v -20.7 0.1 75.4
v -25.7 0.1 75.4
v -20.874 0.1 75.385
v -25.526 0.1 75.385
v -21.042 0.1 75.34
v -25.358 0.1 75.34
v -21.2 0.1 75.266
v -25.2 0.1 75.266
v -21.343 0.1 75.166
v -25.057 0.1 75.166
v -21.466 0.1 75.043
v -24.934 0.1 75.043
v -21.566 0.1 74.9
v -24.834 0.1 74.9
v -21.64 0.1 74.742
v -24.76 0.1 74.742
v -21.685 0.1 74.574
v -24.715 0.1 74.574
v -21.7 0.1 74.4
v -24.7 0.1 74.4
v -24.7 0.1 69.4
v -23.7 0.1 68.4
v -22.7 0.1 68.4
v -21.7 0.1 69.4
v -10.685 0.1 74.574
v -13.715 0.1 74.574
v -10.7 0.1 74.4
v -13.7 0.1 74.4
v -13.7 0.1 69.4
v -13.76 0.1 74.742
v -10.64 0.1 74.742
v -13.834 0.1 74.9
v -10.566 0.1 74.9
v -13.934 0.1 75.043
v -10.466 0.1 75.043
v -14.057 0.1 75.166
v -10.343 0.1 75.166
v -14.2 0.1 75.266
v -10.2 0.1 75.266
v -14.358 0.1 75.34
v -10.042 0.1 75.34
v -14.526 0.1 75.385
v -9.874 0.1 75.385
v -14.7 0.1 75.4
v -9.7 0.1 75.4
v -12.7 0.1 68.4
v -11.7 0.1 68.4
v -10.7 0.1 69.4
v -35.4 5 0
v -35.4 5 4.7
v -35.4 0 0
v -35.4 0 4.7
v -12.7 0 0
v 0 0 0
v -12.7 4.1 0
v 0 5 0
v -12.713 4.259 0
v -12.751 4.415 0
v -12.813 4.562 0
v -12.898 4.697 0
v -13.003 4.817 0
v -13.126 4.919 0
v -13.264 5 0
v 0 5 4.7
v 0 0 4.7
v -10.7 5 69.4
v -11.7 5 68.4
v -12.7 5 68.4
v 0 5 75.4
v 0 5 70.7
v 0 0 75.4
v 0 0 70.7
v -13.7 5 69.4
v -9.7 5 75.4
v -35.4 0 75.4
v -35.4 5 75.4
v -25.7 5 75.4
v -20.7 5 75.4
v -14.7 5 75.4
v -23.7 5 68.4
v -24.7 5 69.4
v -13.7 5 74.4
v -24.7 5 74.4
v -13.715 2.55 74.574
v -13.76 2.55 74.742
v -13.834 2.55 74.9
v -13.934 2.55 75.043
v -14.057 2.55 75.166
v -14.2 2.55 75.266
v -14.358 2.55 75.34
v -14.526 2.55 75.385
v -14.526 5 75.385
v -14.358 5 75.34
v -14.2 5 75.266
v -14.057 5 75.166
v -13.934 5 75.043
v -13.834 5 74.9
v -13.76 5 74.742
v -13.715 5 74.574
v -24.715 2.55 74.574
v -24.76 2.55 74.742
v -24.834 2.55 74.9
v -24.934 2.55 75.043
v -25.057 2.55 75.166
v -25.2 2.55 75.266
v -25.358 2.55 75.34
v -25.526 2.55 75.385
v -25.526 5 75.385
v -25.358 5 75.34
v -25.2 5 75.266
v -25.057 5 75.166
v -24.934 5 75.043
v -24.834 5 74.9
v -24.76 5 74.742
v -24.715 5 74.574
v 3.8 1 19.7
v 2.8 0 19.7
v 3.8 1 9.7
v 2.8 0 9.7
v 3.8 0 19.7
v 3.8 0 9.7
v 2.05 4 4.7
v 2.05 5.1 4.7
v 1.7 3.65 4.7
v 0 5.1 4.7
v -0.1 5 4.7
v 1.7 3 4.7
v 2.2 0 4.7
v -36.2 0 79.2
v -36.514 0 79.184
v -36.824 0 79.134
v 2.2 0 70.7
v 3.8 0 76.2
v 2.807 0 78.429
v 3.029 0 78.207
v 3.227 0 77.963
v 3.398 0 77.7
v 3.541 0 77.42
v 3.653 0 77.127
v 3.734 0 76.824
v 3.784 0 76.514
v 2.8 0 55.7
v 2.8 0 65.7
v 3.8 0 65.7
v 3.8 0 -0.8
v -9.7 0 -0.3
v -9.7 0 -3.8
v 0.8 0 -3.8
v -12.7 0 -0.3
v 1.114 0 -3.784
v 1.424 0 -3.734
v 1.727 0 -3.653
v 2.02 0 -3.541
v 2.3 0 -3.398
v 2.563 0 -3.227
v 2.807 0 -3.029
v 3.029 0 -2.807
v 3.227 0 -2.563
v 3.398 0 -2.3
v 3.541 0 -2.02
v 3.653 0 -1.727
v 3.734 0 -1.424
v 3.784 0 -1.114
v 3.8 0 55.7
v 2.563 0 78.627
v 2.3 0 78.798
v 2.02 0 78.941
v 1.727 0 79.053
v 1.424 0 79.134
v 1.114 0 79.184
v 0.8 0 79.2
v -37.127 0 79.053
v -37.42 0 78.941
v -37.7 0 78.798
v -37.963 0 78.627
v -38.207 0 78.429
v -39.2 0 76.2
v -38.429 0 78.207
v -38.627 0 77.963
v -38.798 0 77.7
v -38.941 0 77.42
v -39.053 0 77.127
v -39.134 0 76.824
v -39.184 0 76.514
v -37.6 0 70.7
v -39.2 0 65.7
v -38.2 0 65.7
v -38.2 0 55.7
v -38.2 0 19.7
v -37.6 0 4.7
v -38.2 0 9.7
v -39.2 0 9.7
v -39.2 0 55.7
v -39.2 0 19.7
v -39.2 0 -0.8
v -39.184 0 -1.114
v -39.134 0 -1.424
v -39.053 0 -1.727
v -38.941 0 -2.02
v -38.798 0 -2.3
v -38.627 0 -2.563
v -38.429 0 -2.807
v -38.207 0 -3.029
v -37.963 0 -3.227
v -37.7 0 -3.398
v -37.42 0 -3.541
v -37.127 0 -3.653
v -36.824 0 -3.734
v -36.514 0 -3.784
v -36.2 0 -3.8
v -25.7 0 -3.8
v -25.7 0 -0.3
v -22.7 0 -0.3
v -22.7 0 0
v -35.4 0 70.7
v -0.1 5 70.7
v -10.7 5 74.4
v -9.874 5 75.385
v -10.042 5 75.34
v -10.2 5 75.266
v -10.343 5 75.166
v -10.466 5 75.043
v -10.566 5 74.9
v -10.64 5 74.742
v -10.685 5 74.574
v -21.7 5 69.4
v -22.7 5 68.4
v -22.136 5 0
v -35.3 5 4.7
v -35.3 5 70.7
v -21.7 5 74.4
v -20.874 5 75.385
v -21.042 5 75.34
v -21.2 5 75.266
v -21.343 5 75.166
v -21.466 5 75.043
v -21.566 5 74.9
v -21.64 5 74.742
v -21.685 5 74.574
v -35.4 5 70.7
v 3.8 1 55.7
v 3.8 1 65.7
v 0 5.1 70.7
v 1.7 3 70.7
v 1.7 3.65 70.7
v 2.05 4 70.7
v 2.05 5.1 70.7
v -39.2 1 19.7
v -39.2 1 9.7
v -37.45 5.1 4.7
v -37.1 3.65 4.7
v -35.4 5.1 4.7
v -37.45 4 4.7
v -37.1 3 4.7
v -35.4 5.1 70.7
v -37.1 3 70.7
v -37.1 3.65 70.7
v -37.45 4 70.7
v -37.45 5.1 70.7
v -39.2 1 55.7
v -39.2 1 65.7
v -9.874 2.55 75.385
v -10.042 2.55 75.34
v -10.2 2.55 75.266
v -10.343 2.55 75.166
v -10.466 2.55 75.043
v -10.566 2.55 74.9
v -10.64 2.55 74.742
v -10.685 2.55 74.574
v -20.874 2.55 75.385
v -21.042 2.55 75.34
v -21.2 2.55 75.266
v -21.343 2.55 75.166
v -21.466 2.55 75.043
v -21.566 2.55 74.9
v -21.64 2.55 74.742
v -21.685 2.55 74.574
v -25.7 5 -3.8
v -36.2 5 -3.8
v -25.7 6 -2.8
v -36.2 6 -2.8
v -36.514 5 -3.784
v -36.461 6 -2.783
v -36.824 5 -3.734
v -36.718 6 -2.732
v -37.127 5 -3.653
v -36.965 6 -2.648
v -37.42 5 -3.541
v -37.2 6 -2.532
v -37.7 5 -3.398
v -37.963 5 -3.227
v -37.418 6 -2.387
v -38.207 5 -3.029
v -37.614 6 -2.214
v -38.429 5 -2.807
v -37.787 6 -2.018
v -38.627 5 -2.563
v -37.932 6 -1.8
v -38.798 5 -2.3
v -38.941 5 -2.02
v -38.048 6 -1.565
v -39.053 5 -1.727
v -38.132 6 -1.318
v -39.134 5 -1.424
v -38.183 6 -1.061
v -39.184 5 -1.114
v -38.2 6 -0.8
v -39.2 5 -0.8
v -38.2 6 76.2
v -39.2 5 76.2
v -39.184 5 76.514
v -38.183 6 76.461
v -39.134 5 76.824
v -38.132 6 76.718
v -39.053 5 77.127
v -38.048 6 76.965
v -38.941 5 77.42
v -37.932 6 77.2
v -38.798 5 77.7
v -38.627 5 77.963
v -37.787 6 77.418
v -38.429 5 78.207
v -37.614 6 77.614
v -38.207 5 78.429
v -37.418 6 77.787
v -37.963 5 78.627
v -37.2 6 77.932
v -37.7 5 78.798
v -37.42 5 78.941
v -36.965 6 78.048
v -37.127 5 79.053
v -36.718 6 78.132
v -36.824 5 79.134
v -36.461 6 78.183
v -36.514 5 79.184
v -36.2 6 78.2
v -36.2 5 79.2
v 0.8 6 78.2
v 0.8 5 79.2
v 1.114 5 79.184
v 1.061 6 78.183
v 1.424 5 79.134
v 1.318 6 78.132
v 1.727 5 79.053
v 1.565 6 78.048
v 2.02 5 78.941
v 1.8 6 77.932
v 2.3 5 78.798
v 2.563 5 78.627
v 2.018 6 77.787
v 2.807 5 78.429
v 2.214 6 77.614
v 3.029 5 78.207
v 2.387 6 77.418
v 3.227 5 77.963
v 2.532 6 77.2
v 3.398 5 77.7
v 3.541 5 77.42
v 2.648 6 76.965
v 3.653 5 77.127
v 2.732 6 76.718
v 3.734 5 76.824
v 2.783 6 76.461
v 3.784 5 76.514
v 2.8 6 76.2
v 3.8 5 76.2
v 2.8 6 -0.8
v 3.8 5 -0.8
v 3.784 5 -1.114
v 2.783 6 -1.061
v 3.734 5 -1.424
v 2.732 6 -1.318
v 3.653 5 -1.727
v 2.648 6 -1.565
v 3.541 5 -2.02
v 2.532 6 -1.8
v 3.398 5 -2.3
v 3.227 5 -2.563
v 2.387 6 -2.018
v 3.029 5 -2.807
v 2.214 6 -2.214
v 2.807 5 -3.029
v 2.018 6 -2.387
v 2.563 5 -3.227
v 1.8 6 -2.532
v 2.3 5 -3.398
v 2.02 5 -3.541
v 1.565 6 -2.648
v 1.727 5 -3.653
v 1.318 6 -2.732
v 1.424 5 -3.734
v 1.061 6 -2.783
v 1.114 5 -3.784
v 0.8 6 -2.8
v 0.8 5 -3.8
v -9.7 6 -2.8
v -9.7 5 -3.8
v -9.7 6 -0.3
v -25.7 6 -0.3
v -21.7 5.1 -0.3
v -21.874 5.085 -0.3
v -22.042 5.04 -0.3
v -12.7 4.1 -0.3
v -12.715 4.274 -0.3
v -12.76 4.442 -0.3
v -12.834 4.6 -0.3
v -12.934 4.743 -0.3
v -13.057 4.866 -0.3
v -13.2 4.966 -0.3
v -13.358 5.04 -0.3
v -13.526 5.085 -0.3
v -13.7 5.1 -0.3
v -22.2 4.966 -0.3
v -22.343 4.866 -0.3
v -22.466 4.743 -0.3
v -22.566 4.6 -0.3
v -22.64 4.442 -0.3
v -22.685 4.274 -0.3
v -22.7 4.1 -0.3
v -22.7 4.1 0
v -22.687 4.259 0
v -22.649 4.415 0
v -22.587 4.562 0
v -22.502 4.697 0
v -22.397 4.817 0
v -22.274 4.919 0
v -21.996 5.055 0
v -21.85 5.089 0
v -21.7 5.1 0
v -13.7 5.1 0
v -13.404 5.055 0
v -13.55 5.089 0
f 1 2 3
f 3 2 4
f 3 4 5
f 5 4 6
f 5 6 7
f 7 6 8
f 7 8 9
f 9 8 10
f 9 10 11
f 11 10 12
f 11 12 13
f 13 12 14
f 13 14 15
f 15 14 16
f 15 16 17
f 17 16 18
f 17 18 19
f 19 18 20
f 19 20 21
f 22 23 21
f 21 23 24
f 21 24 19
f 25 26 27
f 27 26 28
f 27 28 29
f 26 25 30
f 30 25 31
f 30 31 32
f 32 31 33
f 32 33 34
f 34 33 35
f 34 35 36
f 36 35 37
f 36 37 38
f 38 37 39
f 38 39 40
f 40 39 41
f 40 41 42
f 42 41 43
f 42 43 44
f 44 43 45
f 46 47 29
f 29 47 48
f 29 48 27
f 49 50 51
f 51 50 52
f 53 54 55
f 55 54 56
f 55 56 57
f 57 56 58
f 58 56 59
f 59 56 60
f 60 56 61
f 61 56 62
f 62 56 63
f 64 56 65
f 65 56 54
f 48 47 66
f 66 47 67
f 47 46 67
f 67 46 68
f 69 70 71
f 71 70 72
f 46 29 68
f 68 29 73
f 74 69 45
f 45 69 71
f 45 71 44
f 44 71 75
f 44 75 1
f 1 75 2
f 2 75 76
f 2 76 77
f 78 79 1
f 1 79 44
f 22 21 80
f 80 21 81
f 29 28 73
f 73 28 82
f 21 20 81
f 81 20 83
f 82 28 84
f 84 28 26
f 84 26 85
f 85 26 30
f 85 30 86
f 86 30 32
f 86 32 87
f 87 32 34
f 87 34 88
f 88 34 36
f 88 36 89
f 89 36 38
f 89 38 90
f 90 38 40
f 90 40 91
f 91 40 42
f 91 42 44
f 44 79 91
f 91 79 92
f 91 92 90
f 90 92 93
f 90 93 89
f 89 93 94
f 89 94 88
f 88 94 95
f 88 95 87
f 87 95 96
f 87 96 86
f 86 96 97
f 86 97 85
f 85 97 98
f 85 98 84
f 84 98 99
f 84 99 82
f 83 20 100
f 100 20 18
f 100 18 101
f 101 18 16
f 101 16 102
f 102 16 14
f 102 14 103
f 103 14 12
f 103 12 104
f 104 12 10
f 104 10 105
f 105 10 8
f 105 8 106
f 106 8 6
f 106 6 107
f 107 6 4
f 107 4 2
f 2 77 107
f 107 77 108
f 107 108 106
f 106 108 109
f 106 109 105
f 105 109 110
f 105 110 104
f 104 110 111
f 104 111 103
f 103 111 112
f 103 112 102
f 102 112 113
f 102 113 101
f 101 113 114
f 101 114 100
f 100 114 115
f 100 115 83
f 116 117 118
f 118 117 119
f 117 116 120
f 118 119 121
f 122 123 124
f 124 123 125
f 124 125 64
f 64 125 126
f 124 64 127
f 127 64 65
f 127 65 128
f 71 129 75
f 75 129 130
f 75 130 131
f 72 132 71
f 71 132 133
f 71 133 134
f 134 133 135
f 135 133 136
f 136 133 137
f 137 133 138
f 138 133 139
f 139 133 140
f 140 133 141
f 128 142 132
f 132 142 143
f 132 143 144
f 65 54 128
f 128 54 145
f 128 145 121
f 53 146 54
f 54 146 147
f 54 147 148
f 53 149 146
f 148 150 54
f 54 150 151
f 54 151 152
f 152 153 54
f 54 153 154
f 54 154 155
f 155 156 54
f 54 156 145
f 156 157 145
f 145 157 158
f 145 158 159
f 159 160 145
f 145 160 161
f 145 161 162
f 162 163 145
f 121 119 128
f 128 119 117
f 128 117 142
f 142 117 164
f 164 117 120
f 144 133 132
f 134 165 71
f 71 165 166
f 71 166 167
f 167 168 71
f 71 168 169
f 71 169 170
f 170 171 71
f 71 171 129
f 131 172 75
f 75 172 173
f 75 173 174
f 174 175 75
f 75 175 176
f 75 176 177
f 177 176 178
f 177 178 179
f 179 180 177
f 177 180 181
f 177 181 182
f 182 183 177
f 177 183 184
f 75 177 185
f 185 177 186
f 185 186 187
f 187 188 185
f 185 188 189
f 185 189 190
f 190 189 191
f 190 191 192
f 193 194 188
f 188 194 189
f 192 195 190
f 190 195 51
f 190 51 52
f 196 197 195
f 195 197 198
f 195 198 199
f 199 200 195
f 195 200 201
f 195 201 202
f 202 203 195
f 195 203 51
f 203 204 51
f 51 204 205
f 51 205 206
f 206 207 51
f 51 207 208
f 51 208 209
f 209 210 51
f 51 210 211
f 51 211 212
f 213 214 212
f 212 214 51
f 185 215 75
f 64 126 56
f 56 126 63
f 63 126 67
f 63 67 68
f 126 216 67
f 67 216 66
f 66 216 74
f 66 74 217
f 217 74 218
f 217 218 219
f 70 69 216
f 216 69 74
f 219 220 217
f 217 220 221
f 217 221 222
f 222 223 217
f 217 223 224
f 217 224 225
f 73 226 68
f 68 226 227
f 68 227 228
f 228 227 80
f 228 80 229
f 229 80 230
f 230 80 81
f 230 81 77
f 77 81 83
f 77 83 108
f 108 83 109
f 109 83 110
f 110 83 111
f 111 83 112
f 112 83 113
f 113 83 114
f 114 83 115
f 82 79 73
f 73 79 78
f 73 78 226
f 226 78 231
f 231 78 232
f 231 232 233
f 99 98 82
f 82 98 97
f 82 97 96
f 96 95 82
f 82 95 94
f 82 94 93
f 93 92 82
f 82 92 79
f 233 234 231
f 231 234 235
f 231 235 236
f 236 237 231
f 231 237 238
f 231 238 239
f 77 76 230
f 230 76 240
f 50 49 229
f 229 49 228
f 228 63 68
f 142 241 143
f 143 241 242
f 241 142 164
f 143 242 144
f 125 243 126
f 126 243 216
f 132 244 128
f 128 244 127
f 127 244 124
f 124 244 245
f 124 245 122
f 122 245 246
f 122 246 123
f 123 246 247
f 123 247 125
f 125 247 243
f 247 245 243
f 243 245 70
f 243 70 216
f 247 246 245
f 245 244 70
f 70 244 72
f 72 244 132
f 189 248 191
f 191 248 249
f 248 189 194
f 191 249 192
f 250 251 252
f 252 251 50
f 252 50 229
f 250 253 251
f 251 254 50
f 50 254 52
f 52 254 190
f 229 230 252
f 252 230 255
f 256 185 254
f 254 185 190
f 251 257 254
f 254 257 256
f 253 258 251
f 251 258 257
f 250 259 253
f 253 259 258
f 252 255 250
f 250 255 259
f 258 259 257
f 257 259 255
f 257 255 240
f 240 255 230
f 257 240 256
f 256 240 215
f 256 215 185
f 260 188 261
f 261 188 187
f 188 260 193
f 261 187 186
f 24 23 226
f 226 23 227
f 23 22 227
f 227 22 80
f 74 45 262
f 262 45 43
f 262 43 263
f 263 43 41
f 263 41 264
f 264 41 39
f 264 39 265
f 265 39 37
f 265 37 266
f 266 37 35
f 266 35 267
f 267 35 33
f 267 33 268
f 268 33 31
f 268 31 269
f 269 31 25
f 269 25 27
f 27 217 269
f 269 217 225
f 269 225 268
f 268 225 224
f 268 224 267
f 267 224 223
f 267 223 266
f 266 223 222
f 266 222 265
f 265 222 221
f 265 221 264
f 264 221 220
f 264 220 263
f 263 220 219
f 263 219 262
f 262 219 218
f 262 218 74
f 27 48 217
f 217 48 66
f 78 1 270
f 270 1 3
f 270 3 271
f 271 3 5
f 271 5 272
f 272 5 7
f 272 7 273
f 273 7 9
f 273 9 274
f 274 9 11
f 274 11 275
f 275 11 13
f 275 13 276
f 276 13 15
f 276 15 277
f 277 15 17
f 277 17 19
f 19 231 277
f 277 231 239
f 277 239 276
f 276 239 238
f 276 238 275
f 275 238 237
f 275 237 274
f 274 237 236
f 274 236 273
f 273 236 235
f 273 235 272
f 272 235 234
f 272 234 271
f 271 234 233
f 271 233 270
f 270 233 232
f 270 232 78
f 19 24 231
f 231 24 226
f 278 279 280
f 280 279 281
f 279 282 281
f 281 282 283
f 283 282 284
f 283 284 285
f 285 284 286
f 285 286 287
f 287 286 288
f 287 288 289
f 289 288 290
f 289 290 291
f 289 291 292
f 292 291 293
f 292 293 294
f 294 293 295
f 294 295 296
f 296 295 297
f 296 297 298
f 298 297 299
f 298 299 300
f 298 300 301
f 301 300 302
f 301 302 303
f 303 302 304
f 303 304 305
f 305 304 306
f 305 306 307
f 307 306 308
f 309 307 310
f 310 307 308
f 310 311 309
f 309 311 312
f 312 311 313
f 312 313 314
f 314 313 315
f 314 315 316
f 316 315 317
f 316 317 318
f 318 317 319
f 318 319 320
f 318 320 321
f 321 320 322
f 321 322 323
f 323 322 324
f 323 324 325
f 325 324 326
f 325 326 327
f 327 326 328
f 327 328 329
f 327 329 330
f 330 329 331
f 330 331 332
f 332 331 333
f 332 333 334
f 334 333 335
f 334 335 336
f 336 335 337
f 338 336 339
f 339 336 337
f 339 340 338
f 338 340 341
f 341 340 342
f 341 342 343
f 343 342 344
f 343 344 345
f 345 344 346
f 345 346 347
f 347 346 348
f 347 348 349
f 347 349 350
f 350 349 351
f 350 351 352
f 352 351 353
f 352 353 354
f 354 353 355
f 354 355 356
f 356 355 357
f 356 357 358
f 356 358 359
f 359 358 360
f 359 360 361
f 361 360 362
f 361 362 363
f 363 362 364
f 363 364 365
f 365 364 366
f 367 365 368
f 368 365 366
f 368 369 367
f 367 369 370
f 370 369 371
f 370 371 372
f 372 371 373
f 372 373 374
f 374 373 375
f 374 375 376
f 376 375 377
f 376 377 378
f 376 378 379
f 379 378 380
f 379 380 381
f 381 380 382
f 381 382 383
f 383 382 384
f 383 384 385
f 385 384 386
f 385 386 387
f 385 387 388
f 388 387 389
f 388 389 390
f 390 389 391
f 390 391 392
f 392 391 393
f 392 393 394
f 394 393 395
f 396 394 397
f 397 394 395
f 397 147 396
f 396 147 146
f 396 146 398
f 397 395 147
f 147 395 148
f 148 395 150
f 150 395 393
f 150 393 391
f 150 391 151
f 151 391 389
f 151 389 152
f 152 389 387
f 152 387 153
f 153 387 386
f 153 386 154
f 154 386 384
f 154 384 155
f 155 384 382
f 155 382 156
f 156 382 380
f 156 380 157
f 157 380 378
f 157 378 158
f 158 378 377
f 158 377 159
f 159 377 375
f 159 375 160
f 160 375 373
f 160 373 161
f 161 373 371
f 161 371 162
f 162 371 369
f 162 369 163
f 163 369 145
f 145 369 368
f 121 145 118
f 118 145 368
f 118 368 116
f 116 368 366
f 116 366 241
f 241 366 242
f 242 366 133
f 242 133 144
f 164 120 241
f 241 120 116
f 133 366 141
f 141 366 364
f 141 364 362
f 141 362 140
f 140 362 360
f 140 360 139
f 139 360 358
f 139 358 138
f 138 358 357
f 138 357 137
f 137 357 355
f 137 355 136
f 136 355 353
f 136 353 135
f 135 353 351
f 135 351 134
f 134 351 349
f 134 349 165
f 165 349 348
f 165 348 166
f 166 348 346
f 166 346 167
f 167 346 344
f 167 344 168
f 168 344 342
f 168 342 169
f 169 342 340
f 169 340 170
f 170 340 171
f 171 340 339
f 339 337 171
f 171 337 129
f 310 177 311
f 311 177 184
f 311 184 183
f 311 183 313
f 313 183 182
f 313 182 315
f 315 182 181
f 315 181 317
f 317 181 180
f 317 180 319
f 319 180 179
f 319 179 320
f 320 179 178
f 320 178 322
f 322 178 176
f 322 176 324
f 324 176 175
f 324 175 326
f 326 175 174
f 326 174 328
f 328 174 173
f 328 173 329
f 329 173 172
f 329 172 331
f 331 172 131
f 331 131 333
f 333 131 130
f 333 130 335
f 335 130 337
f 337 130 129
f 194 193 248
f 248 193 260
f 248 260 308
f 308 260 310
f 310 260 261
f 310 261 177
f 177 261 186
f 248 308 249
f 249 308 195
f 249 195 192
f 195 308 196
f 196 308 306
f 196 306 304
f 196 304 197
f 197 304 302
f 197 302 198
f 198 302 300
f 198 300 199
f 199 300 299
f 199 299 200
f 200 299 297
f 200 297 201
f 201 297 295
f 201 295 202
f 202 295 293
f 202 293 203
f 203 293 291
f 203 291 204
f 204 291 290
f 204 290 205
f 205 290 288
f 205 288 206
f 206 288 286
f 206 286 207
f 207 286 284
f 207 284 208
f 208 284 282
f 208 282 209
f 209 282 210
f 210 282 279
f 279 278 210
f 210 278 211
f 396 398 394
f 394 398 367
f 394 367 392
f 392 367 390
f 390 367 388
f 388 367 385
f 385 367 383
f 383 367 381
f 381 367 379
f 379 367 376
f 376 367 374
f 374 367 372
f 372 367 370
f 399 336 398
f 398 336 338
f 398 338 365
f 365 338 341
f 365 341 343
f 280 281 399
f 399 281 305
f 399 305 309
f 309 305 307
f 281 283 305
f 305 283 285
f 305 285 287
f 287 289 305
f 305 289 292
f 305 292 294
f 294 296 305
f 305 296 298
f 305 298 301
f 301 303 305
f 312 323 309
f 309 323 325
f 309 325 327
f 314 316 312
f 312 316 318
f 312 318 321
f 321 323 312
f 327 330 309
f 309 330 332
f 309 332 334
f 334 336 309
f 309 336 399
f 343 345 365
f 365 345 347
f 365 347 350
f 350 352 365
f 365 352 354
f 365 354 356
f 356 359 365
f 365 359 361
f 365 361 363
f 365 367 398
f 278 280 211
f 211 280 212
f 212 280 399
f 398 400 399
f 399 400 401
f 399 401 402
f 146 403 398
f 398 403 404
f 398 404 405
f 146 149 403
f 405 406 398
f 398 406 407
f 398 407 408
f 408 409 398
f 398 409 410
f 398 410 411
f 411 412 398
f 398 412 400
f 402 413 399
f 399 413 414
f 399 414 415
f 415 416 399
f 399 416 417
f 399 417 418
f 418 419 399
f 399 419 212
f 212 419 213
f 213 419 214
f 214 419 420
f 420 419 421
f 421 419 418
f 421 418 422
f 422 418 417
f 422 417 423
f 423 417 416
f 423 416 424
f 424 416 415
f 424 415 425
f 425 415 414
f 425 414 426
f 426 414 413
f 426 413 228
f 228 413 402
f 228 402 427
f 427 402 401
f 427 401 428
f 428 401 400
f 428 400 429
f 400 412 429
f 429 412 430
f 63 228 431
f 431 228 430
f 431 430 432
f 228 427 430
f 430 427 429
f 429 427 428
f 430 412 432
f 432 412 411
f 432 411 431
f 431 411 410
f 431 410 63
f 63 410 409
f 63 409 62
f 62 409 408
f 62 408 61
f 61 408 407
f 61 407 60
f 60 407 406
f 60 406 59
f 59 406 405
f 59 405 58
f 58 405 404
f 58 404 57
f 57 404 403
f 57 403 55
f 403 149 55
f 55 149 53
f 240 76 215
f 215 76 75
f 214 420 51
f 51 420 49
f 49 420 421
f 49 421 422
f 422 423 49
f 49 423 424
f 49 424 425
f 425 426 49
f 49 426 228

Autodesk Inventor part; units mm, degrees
ref_plane "YZ Plane" through (0, 0, 0) normal (1, 0, 0) x (0, 1, 0)
sketch "Sketch1" plane through (0, 0, 0) normal (0, 1, 0) x (-1, 0, 0)
  line L0 (0, 0) -> (35.4, 0)
  line L1 (35.4, 0) -> (35.4, 75.4)
  line L2 (35.4, 75.4) -> (0, 75.4)
  line L3 (0, 75.4) -> (0, 0)
  line L4 (39.2, -3.8) -> (-3.8, -3.8)
  line L5 (-3.8, -3.8) -> (-3.8, 79.2)
  line L6 (-3.8, 79.2) -> (39.2, 79.2)
  line L7 (39.2, 79.2) -> (39.2, -3.8)
  line L8 (39.2, 37.7) -> (49.7975, 37.7) construction
  line L9 (17.7, 79.2) -> (17.7, 95.7522) construction
  line L10 (24.7, 75.4) -> (21.7, 75.4)
  line L11 (21.7, 75.4) -> (21.7, 68.4)
  line L12 (21.7, 68.4) -> (24.7, 68.4)
  line L13 (24.7, 68.4) -> (24.7, 75.4)
  line L14 (13.7, 75.4) -> (10.7, 75.4)
  line L15 (10.7, 75.4) -> (10.7, 68.4)
  line L16 (10.7, 68.4) -> (13.7, 68.4)
  line L17 (13.7, 68.4) -> (13.7, 75.4)
  line L18 (0.2, 75.2) -> (35.2, 75.2)
  line L19 (35.2, 75.2) -> (35.2, 0.2)
  line L20 (35.2, 0.2) -> (0.2, 0.2)
  line L21 (0.2, 0.2) -> (0.2, 75.2)
  point P0 (21.7, 75.4)
  point P1 (10.7, 75.4)
  dimension "d43" = 4
  dimension "d44" = 4
  dimension "d45" = 7
  dimension "d46" = 3
  dimension "d47" = 3
  dimension "d74" = 0.2
  dimension "d75" = 75
  dimension "d76" = 35
  dimension "d77" = 4
extrude "Extrusion1" add sketch "Sketch1" along normal blind 6 contours L3 L2 L15 L18 L21 L20 L19 L13 L1 L0 | L2 L17 L18 L15 | L13 L18 L11 L2 | L2 L11 L18 L17 | L18 L17 L16 L15 | L15 L16 L17 L18 L11 L12 L13 L19 L20 L21 | L13 L12 L11 L18 | L4 L5 L6 L7
extrude "Extrusion2" cut sketch "Sketch1" along normal blind 5 contours L3 L2 L15 L18 L21 L20 L19 L13 L1 L0 | L2 L11 L18 L17 | L15 L16 L17 L18 L11 L12 L13 L19 L20 L21
sketch "Sketch3" plane through (5, 0, -3.8) normal (0, 0, -1) x (-1, 0, 0)
  line L0 (22.7, 10) -> (22.7, 15.0736) construction
  line L1 (29.7, 8) -> (15.7, 8)
  line L2 (14.7, 7) -> (14.7, 0)
  line L3 (30.7, 0) -> (30.7, 7)
  arc A0 (30.7, 7) -> (29.7, 8) centre (29.7, 7) ccw
  arc A1 (15.7, 8) -> (14.7, 7) centre (15.7, 7) ccw
  line L4 (30.7, 0) -> (14.7, 0)
  line L5 (1.2, 0) -> (44.2, 0) projected
  line L6 (44.2, 0) -> (1.2, 0) projected
  line L7 (17.7, 0) -> (17.7, 4.1)
  line L8 (18.7, 5.1) -> (26.7, 5.1)
  line L9 (27.7, 4.1) -> (27.7, 0)
  arc A2 (18.7, 5.1) -> (17.7, 4.1) centre (18.7, 4.1) ccw
  arc A3 (27.7, 4.1) -> (26.7, 5.1) centre (26.7, 4.1) ccw
  line L10 (1.2, 0) -> (1.2, 6) projected
  line L11 (44.2, 0) -> (44.2, 6) projected
  point P0 (30.5, 8)
  point P1 (14.5, 8)
  point P2 (17.7, 0)
  dimension "d15" = 8
  dimension "d16" = 8
  dimension "d19" = 1
  dimension "d27" = 5.1
  dimension "d28" = 5
  dimension "d29" = 5
  dimension "d30" = 1
  dimension "d33" = 21.5
  dimension "d34" = 43
  dimension "d35" = 8
extrude "Extrusion3" cut sketch "Sketch3" against normal up to surface (3.8 mm away) contours L4 L7 A2 L8 A3 L9
extrude "Extrusion4" cut sketch "Sketch3" against normal blind 3.5 contours A0 L3 L4 L9 A3 L8 A2 L7 L2 A1 L1
fillet "Fillet1" radius 3 4 edges at (3.8, 3, -3.8) (-39.2, 3, -3.8) (3.8, 3, 79.2) (-39.2, 3, 79.2)
chamfer "Chamfer3" distance 1 angle 45 9 edges at (-30.95, 6, -3.8) (-4.45, 6, -3.8) (-38.3213, 6, -2.9213) (-39.2, 6, 37.7) (-38.3213, 6, 78.3213) (-17.7, 6, 79.2) (2.9213, 6, 78.3213) (3.8, 6, 37.7) (2.9213, 6, -2.9213)
fillet "Fillet2" radius 1 4 edges at (-24.7, 2.5, 75.4) (-21.7, 2.5, 75.4) (-13.7, 2.5, 75.4) (-10.7, 2.5, 75.4)
chamfer "Chamfer5" distance 1 angle 45 4 edges at (-24.7, 2.5, 68.4) (-21.7, 2.5, 68.4) (-13.7, 2.5, 68.4) (-10.7, 2.5, 68.4)
ref_plane "Work Plane2" through (0.8, 0, 67.7) normal (0, 0, -1) x (-1, 0, 0)
ref_plane "Work Plane1" through (0.8, 0, 37.7) normal (0, 0, -1) x (-1, 0, 0)
ref_plane "Work Plane3" through (-17.7, 0, 76.2) normal (1, 0, 0) x (0, 0, -1)
ref_plane "Work Plane4" through (0.8, 0, 65.7) normal (0, 0, -1) x (-1, 0, 0)
sketch "Sketch4" plane through (0.8, 0, 37.7) normal (0, 0, -1) x (-1, 0, 0)
  line L0 (36.2, 0) -> (36.2, 5) projected
  line L1 (36.2, 0) -> (37.8, 0) construction
  line L2 (40, 0) -> (36.2, 0) projected
  line L3 (37.8, 0) -> (37.8, 5) construction
  line L4 (38.15, 4.65) -> (38.15, 3.9) construction
  line L5 (37.8, 5) -> (36.2, 5) construction
  line L6 (37.8, 5) -> (38.15, 4.65) construction
  line L7 (38.15, 3.9) -> (37.8, 3.55) construction
  line L8 (38.4, 0) -> (37.9, 3)
  line L9 (37.9, 3) -> (37.9, 3.65)
  line L10 (37.9, 3.65) -> (38.25, 4)
  line L11 (38.25, 4) -> (38.25, 5.1)
  line L12 (36.2, 0) -> (0.8, 0) projected
  line L13 (38.4, 0) -> (36.2, 0)
  line L14 (36.2, 0) -> (36.2, 5)
  line L15 (38.25, 5.1) -> (36.2, 5.1)
  line L16 (36.2, 5.1) -> (36.2, 5)
  line L17 (37, 0) -> (37, 5) projected
  line L18 (36.2, 5.1) -> (36.1, 5)
  line L19 (36.2, 5) -> (26.5, 5) projected
  line L20 (36.2, 5) -> (36.1, 5)
  dimension "d53" = 1.6
  dimension "d54" = 5
  dimension "d55" = 0.35
  dimension "d58" = 45
  dimension "d59" = 45
  dimension "d60" = 1.1
  dimension "d61" = 0.1
  dimension "d62" = 0.6
  dimension "d63" = 3
  dimension "d64" = 0.1
  dimension "d83" = 135
  dimension "d84" = 0.1
sketch "Sketch5" plane through (0.8, 0, 67.7) normal (0, 0, -1) x (-1, 0, 0)
  line L0 (40, 5) -> (40, 0) projected
  line L1 (40, 1) -> (39, 0)
  line L2 (40, 0) -> (37, 0) projected
  line L3 (40, 1) -> (40, 0)
  line L4 (39, 0) -> (40, 0)
  point P0 (0.8, 0)
  dimension "d65" = 45
  dimension "d66" = 1
extrude "Extrusion5" cut sketch "Sketch5" along normal blind 10 from surface at 2
extrude "Extrusion6" cut sketch "Sketch4" against normal blind 33 and the other way blind 3.5
mirror "Mirror1" about plane through (0.8, 0, 37.7) normal (0, 0, -1) of "Extrusion6", "Extrusion5"
mirror "Mirror2" about plane through (-17.7, 0, 76.2) normal (1, 0, 0) of "Extrusion6", "Extrusion5", "Mirror1"
extrude "Extrusion7" cut sketch "Sketch1" along normal blind 0.1 contours L3 L2 L15 L18 L21 L20 L19 L13 L1 L0 | L2 L17 L18 L15 | L13 L18 L11 L2 | L2 L11 L18 L17 | L18 L17 L16 L15 | L15 L16 L17 L18 L11 L12 L13 L19 L20 L21 | L13 L12 L11 L18
equation "\"d43\" = d44"
equation "\"d47\" = d46"
equation "\"d16\" = d15"
equation "\"d29\" = d28"
equation "\"d33\" = 0.5 * d34"
properties part number "scatola_v2_sopra"
